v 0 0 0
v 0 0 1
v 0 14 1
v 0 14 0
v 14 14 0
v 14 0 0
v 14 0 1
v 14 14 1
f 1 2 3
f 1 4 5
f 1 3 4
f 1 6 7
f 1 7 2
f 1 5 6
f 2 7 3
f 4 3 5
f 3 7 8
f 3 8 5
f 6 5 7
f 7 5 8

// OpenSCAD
/* Warning, this is a very basic generator with a lot of approximation 
input data : [TQFP, EQX, 14x14x1mm, 100, , C, C04-00110C]
generated by com.zoubworld.electronics.cad.model3d.Basic
Date : Sun Feb 15 10:50:48 CET 2026
*/

//body
color("black")
translate([0,0,0])
cube([14.0,14.0,1.0], center=false);
